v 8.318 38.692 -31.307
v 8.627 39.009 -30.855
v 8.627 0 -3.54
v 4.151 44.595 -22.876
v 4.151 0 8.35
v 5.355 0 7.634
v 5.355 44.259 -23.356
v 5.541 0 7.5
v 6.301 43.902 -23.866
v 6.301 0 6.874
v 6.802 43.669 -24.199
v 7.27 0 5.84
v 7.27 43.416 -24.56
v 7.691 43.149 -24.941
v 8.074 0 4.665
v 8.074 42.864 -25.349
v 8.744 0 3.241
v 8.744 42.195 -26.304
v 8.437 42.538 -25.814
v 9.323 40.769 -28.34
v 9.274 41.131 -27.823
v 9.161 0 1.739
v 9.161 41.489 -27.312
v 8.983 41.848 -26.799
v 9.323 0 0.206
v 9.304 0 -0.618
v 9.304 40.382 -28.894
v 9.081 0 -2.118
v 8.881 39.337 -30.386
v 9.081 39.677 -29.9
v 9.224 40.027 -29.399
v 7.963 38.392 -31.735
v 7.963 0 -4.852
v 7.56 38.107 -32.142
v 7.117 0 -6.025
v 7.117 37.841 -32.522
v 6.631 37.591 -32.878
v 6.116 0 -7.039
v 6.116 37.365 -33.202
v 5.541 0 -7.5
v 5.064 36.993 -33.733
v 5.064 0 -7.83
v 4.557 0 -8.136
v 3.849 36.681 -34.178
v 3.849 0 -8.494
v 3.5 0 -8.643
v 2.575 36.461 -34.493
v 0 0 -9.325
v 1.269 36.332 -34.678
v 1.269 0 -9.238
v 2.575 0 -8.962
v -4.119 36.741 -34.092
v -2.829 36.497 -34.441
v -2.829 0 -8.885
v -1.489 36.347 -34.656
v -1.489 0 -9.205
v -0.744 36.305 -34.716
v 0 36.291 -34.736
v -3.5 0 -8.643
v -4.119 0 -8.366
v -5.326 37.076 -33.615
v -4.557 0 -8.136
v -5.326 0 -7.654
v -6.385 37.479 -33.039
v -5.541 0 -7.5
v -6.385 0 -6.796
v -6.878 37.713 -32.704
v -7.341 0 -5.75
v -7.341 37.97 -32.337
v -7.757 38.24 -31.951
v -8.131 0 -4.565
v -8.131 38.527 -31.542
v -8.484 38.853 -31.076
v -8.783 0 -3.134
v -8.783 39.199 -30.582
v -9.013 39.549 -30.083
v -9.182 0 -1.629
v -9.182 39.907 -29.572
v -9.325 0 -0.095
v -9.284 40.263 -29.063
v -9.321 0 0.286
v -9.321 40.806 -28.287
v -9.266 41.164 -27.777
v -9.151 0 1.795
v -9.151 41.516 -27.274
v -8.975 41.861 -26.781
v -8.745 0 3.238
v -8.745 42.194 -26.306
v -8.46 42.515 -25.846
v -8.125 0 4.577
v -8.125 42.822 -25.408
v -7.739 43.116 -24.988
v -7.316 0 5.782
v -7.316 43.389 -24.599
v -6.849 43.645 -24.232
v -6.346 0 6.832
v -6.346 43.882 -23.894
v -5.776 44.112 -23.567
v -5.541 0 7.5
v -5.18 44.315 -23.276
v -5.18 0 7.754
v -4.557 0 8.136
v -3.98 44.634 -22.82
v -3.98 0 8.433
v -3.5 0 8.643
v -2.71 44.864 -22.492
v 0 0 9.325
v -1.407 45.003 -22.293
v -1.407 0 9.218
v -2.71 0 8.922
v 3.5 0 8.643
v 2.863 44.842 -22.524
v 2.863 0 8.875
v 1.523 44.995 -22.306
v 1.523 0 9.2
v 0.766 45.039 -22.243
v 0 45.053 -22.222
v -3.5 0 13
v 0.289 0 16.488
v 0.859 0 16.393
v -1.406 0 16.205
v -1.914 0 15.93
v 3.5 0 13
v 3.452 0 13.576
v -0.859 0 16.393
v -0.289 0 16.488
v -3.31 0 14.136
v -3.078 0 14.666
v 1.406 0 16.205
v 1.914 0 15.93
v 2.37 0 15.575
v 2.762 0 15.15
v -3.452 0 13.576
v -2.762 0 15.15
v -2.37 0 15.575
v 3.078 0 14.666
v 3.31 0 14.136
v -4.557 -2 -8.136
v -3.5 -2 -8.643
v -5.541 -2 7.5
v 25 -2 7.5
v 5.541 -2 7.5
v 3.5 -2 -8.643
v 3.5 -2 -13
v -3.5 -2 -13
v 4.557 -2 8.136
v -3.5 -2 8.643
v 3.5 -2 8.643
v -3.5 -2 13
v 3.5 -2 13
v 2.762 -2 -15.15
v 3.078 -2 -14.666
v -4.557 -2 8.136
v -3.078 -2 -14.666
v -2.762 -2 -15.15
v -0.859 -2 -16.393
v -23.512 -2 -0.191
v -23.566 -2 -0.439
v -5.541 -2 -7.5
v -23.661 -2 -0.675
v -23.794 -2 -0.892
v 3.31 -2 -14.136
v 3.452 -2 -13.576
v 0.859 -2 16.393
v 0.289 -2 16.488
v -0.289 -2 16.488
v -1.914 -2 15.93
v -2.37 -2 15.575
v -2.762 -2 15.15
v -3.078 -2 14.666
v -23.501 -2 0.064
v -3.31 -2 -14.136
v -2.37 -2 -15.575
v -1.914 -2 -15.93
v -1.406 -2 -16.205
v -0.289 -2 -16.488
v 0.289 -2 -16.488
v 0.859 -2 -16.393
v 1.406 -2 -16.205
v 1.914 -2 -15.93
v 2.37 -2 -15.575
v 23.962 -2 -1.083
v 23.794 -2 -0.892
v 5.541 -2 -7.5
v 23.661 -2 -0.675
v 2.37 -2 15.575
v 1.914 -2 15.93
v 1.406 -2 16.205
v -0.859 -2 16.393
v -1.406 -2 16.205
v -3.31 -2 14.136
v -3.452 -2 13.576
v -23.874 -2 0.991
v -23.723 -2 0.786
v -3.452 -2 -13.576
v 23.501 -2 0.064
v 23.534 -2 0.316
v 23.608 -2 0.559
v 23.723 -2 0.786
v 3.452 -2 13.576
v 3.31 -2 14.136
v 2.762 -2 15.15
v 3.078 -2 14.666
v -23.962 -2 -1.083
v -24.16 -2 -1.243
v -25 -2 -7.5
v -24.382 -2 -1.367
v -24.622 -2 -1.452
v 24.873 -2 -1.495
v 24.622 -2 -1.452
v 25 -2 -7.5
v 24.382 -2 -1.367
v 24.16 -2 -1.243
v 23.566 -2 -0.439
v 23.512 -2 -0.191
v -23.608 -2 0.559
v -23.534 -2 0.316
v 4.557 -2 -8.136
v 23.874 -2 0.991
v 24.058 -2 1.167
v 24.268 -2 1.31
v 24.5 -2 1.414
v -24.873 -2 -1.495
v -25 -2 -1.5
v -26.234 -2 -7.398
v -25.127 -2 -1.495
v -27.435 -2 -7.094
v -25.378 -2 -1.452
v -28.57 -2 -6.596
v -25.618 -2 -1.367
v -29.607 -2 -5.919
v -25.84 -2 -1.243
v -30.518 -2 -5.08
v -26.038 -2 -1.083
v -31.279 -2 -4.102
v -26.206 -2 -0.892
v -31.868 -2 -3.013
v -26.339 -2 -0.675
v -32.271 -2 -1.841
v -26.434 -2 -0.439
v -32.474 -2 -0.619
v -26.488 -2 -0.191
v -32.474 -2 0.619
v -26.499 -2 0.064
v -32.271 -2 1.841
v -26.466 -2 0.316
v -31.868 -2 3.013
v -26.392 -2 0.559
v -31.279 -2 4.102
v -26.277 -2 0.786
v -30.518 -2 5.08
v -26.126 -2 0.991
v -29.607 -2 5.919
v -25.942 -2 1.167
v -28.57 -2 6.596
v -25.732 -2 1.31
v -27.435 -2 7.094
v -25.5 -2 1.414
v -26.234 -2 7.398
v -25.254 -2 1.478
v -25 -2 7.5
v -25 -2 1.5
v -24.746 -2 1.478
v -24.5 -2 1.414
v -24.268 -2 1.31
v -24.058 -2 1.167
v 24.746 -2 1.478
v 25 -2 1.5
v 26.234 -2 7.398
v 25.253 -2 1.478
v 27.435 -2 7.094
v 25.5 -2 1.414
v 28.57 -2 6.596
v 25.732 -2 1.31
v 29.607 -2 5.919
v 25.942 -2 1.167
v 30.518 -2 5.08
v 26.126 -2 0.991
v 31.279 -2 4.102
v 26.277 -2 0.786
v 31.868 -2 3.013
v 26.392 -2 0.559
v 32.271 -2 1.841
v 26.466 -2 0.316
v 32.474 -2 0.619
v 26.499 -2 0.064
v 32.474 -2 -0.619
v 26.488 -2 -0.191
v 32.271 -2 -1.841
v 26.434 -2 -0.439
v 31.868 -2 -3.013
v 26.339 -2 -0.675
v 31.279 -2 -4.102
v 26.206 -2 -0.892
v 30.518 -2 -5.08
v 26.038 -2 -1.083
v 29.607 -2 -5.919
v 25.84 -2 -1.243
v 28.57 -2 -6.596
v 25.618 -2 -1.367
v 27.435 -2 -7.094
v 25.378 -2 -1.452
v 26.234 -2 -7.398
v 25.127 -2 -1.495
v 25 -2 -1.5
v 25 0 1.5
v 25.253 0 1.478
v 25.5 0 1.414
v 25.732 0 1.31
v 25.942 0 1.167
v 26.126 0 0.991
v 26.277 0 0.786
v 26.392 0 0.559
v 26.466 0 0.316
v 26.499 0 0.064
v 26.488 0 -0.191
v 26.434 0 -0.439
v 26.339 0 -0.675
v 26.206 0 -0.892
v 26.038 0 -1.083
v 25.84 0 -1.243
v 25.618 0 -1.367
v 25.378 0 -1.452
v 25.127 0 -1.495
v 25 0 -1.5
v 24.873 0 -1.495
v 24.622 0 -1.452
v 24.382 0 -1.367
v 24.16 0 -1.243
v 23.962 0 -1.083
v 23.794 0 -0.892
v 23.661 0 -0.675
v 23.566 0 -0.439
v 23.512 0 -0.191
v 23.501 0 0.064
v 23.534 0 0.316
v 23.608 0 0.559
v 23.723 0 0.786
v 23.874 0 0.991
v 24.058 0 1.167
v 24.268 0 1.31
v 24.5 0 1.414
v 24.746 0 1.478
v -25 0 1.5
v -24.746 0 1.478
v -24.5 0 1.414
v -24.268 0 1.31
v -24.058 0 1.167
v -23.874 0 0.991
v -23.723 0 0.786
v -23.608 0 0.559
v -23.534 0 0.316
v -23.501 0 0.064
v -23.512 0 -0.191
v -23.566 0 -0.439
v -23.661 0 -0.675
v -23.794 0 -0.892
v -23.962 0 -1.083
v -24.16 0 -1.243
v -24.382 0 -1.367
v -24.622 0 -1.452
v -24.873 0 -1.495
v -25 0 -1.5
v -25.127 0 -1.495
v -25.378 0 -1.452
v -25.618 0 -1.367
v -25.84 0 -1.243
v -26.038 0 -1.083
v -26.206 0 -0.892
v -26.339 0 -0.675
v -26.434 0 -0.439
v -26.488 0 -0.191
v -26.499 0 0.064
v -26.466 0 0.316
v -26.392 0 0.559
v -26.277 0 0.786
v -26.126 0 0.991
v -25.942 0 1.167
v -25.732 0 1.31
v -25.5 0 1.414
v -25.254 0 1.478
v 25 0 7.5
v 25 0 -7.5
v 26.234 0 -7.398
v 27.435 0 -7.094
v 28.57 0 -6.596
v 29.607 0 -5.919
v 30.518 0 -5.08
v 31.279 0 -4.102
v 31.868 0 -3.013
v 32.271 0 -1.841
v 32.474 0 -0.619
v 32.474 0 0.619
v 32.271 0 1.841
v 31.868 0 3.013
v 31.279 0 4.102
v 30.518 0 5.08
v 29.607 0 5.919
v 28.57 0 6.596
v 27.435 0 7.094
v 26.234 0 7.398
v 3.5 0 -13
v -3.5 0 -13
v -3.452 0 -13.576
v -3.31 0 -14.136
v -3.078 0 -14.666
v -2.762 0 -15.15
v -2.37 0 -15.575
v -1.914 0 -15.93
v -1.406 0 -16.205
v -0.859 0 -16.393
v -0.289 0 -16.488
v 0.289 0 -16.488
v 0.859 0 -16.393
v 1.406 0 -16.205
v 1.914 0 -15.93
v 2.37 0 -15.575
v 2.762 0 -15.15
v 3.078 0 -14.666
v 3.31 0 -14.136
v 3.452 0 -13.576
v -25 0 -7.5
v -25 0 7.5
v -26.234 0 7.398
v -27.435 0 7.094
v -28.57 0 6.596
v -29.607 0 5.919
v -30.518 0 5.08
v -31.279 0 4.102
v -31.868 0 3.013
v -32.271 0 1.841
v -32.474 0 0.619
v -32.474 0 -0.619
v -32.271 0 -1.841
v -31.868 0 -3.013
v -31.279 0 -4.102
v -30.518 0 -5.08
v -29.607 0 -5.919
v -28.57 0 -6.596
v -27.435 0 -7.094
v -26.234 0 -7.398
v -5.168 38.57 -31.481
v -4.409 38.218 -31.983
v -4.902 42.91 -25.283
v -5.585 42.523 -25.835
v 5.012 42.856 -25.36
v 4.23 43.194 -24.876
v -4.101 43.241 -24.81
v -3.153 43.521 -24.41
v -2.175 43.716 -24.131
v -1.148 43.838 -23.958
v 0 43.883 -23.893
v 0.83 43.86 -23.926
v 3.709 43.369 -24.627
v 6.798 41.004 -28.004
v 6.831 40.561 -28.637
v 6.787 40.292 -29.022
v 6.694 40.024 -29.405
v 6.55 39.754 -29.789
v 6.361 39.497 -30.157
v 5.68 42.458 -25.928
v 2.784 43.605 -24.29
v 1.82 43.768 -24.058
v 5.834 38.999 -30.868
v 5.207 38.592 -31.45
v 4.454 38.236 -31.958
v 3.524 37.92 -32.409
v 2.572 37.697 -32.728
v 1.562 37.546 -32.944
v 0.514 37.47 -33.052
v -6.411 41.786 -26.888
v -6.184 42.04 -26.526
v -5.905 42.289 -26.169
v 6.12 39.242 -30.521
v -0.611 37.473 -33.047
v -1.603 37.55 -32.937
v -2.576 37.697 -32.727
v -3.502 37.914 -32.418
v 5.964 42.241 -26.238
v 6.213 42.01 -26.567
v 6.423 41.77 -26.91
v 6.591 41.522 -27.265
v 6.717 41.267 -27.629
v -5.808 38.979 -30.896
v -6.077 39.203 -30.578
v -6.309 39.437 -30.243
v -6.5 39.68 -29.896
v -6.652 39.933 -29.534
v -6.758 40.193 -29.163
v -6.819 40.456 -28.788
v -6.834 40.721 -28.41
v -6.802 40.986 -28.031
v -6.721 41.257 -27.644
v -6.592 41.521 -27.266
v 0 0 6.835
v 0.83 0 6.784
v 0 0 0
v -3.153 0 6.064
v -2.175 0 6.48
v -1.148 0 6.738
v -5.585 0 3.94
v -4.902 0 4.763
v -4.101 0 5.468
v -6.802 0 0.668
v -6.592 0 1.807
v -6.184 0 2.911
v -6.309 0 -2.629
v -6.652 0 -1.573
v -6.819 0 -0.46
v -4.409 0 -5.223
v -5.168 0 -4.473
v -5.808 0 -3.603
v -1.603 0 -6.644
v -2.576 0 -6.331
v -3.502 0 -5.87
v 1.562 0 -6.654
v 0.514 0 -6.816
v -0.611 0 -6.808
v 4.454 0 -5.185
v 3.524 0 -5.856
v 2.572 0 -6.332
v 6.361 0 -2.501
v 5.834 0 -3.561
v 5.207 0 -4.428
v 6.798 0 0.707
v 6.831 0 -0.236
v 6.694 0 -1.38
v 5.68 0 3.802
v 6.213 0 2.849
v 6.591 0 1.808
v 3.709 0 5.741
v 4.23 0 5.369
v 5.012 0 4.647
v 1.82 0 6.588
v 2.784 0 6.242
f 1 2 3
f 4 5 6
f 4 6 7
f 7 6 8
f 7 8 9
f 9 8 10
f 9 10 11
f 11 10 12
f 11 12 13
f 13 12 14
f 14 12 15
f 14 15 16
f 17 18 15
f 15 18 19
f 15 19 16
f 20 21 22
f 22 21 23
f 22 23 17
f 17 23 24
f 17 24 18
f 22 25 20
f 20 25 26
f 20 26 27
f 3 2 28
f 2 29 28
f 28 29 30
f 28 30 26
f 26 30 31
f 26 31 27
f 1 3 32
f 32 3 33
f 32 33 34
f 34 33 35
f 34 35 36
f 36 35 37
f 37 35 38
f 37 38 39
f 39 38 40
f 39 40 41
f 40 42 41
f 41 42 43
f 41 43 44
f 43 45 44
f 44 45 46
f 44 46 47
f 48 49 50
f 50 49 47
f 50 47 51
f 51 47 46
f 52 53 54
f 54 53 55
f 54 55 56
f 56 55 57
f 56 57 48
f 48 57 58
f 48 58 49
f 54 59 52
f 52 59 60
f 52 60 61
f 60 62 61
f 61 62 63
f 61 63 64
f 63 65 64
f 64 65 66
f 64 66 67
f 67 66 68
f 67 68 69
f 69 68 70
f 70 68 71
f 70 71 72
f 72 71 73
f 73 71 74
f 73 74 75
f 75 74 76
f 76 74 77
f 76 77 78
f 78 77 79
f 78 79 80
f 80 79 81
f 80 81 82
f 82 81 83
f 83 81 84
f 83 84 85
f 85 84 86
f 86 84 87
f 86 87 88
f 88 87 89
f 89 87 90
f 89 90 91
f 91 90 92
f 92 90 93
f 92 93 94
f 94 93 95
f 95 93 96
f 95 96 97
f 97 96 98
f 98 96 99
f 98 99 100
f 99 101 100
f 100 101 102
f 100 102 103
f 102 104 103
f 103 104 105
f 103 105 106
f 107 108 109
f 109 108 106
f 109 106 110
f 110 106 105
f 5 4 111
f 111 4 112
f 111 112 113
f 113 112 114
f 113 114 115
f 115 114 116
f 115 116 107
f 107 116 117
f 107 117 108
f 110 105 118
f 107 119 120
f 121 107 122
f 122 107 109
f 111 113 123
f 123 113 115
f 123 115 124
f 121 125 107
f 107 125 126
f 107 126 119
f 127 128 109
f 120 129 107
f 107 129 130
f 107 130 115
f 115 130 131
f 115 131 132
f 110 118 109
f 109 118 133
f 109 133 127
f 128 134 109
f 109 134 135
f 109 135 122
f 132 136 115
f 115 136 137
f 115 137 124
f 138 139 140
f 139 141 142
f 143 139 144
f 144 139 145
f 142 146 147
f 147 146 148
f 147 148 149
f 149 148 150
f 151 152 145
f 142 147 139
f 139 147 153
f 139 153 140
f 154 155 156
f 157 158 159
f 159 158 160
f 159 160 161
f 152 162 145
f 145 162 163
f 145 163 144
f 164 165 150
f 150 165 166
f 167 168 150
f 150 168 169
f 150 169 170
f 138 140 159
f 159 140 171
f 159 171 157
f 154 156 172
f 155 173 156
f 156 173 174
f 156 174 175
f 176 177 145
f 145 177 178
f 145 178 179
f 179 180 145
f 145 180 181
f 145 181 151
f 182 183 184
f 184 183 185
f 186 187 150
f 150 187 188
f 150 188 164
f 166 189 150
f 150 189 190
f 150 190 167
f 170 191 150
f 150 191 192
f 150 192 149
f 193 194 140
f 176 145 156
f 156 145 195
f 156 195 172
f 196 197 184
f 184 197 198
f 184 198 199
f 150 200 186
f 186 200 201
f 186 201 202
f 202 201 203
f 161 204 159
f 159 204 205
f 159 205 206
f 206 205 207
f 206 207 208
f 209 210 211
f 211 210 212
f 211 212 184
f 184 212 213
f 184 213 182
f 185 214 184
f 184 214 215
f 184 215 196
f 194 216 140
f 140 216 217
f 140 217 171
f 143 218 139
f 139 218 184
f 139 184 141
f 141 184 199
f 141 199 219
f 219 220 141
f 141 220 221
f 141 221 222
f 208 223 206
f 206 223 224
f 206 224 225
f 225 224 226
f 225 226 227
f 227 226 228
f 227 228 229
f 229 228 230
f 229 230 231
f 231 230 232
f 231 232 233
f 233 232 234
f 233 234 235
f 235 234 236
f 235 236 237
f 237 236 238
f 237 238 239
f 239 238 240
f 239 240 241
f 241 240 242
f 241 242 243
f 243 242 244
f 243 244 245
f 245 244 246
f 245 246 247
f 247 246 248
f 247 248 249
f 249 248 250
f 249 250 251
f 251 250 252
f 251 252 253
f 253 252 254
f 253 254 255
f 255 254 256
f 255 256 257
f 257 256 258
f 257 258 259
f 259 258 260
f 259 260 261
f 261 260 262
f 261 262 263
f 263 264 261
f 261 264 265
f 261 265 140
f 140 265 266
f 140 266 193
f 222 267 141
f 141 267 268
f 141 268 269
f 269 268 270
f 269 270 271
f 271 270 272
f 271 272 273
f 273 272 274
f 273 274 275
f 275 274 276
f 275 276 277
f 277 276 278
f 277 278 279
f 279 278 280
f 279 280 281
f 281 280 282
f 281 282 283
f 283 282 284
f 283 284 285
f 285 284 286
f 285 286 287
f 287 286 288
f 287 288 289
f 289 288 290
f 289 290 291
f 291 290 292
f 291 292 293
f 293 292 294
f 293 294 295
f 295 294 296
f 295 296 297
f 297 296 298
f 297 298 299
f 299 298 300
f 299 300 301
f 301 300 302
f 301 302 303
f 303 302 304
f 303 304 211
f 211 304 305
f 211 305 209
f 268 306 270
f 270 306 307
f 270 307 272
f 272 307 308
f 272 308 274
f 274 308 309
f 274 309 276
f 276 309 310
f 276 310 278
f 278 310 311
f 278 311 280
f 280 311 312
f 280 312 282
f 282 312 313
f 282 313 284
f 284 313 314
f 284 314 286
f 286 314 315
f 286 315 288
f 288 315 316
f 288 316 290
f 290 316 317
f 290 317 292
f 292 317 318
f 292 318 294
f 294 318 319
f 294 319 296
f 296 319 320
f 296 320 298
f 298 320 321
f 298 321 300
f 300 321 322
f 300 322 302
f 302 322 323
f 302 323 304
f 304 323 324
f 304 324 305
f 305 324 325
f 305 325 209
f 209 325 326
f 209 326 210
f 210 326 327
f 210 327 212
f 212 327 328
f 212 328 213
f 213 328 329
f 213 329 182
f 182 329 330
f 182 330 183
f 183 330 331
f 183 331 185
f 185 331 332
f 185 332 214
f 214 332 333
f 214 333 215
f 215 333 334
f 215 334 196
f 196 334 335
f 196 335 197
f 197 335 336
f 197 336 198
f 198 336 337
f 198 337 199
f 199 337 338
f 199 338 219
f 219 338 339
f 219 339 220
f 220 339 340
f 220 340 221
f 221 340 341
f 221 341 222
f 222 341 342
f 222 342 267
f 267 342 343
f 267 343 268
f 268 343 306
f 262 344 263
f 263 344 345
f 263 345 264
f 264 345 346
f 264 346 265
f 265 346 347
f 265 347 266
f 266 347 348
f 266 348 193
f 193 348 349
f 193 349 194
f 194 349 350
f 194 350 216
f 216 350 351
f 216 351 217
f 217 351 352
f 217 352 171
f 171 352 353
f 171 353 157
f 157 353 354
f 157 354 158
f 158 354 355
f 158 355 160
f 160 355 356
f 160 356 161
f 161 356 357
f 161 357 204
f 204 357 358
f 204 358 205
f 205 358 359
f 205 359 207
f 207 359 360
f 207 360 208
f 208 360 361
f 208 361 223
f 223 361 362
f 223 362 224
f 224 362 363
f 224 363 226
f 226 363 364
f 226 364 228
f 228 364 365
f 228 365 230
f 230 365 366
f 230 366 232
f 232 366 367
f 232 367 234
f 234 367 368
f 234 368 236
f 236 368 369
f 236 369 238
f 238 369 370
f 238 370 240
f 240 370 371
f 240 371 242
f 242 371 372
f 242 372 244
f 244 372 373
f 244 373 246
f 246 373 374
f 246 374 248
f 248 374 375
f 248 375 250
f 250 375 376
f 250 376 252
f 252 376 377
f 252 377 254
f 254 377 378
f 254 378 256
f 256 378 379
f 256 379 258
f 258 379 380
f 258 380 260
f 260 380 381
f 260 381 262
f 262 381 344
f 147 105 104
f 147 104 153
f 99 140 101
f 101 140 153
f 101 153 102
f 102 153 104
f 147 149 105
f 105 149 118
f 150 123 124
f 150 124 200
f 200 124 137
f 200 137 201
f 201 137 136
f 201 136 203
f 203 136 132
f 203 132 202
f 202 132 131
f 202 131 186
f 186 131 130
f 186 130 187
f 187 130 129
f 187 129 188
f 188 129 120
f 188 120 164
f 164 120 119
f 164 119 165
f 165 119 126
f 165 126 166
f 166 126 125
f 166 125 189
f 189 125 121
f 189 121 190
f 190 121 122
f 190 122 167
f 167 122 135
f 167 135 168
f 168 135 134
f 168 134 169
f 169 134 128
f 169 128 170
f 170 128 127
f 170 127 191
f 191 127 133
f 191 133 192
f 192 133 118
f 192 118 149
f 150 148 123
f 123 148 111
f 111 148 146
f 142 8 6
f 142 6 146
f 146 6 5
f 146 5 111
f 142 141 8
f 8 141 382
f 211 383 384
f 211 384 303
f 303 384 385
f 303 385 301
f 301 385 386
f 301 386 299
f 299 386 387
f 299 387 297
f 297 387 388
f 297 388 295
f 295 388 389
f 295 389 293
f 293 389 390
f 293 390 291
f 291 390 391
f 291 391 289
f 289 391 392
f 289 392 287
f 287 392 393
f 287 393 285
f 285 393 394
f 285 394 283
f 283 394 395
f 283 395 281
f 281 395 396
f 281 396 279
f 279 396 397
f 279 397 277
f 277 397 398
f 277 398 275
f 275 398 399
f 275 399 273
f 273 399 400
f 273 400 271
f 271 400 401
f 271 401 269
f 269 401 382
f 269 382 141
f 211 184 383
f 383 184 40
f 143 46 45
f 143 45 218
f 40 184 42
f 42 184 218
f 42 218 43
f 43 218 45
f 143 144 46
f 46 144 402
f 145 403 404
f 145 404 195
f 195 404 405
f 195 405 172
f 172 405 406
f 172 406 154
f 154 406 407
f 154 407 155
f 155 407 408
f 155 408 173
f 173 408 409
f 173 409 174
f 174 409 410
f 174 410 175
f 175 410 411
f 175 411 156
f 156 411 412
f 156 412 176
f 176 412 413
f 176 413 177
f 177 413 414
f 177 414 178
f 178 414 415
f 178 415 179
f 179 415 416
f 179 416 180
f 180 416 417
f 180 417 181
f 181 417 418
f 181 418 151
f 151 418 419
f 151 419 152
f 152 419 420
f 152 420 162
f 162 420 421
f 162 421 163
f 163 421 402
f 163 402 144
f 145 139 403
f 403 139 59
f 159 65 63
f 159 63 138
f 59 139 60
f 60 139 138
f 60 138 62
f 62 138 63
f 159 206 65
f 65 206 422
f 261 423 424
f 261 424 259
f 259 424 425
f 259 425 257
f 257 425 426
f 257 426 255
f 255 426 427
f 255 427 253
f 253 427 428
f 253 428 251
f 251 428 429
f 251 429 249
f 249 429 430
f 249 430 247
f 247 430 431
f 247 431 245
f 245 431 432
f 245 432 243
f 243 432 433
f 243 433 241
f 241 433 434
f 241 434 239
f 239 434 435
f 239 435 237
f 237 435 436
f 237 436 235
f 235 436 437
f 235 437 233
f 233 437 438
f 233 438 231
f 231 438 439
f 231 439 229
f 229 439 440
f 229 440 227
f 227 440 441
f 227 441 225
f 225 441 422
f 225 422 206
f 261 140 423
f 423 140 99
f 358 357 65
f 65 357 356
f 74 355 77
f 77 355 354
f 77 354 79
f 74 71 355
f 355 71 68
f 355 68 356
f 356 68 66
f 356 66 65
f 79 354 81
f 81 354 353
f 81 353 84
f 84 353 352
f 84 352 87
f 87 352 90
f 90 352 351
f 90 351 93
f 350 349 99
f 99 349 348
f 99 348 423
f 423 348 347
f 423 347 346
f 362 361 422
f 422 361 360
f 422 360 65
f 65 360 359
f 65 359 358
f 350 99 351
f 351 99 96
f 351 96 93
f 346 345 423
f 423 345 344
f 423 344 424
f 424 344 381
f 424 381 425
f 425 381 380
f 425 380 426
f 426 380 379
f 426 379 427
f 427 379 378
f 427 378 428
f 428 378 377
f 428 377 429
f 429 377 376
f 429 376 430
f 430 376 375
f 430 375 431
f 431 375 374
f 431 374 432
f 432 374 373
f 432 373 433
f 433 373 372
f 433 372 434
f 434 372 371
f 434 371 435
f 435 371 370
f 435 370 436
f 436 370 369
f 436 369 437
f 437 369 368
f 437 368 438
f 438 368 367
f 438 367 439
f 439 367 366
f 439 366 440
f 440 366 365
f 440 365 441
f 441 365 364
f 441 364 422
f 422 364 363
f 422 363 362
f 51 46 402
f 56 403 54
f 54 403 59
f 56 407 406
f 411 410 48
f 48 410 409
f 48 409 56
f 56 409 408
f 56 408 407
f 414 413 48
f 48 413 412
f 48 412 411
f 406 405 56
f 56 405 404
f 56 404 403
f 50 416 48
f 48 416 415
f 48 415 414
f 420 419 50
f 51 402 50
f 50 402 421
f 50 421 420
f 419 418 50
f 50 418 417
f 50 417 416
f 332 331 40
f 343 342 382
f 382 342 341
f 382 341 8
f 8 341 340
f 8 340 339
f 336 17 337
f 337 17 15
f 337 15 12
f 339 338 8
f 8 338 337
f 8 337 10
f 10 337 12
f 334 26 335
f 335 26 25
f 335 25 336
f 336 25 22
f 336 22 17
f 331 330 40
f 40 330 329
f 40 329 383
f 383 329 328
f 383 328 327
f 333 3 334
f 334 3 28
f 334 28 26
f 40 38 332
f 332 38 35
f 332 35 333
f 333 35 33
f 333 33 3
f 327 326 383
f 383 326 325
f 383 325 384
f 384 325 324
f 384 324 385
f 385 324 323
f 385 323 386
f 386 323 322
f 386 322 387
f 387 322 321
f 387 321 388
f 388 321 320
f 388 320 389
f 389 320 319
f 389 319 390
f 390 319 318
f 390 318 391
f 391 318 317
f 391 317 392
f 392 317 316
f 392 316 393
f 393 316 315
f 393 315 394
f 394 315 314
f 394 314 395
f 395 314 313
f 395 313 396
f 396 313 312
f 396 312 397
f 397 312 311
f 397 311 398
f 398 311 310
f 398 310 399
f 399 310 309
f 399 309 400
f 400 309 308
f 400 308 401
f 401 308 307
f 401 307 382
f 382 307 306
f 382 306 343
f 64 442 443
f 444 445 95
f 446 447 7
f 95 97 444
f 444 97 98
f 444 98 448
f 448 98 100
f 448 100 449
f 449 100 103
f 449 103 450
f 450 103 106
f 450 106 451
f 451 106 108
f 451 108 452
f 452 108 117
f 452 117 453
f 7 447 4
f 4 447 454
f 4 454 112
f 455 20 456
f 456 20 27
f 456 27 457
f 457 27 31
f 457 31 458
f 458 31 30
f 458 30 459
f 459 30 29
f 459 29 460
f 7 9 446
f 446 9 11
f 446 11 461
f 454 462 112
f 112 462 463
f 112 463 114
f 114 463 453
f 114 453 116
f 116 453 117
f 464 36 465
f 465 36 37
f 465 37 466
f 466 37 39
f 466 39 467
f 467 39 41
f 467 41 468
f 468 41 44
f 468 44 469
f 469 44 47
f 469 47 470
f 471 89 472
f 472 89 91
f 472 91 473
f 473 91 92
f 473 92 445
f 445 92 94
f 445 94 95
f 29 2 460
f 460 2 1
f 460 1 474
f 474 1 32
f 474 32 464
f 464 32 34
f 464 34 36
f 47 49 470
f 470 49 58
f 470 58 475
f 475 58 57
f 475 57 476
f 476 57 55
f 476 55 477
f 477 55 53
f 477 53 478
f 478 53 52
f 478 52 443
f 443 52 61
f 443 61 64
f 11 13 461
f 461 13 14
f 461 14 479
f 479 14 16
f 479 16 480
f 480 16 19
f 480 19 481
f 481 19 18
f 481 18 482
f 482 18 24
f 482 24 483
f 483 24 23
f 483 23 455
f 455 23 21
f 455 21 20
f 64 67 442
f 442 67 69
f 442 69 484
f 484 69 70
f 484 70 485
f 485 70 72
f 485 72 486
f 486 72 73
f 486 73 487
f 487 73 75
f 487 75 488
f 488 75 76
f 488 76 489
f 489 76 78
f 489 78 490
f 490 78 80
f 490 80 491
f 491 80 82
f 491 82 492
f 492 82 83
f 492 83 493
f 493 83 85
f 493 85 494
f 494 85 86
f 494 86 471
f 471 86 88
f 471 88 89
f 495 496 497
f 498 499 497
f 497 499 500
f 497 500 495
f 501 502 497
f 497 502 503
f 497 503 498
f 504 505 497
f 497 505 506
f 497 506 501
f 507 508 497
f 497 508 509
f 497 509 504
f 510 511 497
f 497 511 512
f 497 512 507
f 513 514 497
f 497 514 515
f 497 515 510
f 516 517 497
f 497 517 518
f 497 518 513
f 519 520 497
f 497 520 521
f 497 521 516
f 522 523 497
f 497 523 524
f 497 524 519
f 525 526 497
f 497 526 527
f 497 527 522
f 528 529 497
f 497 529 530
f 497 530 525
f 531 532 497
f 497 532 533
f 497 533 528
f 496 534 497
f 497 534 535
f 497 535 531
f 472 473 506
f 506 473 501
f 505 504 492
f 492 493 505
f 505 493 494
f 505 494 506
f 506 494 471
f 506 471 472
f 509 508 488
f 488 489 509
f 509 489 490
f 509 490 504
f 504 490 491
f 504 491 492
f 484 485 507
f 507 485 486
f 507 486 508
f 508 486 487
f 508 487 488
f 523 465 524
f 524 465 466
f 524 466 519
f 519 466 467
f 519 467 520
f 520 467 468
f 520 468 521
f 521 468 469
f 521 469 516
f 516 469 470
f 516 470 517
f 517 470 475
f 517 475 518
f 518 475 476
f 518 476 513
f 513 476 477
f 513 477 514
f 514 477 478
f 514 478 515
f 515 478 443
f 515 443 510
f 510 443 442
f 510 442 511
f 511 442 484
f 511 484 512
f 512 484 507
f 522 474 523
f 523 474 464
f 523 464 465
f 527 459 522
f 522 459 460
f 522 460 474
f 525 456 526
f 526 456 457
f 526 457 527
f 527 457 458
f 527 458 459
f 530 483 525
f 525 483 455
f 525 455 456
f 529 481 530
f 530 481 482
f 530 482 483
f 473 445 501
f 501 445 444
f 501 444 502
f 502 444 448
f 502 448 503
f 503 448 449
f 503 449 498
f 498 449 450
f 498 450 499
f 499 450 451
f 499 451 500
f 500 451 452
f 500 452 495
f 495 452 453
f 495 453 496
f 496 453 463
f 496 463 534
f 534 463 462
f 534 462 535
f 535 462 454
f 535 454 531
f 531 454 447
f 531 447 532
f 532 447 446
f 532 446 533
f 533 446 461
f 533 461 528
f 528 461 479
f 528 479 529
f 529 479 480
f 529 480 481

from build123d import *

# Parameters (mm, degrees)
CROQUIS1_R                 = 9.325
CROQUIS1_R_2               = 6.835
CROQUIS11_R                = 1.5
SALIENTE_EXTRUIR1_DEPTH    = 2
CORTAR_EXTRUIR2_DEPTH      = 69.96775808
CORTAR_EXTRUIR2_DEPTH_BACK = 69.96775808


with BuildPart() as part:
    # Barrer1: sweep along a path in Croquis6
    with BuildLine(Plane(origin=(0, 0, 0), x_dir=(0, 0, -1), z_dir=(1, 0, 0))) as barrer1_path:
        Line((9.345393917, 0), (40.892097916, 45.053362436))
    # Croquis1 → Barrer1 (sweep)
    with BuildSketch(Plane(origin=(0, 0, 0), x_dir=(1, 0, 0), z_dir=(0, 1, 0))):
        Circle(CROQUIS1_R)
        Circle(CROQUIS1_R_2, mode=Mode.SUBTRACT)
    sweep(path=barrer1_path.line)

    # Croquis11 → Saliente-Extruir1 (add)
    with BuildSketch(Plane.XZ):
        with BuildLine():
            Line((-25, 7.5), (-5.54126565, 7.5))
            ThreePointArc((-5.54126565, 7.5), (-4.556629397, 8.135892916), (-3.5, 8.643241579))
            Line((-3.5, 8.643241579), (-3.5, 13))
            ThreePointArc((-3.5, 13), (0, 16.5), (3.5, 13))
            Line((3.5, 13), (3.5, 8.643241579))
            ThreePointArc((3.5, 8.643241579), (4.556629397, 8.135892916), (5.54126565, 7.5))
            Line((5.54126565, 7.5), (25, 7.5))
            ThreePointArc((25, 7.5), (32.5, 0), (25, -7.5))
            Line((25, -7.5), (5.54126565, -7.5))
            ThreePointArc((5.54126565, -7.5), (4.556629397, -8.135892916), (3.5, -8.643241579))
            Line((3.5, -8.643241579), (3.5, -13))
            ThreePointArc((3.5, -13), (0, -16.5), (-3.5, -13))
            Line((-3.5, -13), (-3.5, -8.643241579))
            ThreePointArc((-3.5, -8.643241579), (-4.556629397, -8.135892916), (-5.54126565, -7.5))
            Line((-5.54126565, -7.5), (-25, -7.5))
            ThreePointArc((-25, -7.5), (-32.5, 0), (-25, 7.5))
        make_face()
        with Locations(Location((-25, 0, 0), (0, 0, 270))):
            Circle(CROQUIS11_R, mode=Mode.SUBTRACT)
        with Locations(Location((25, 0, 0), (0, 0, 270))):
            Circle(CROQUIS11_R, mode=Mode.SUBTRACT)
    extrude(amount=SALIENTE_EXTRUIR1_DEPTH)

    # Croquis13 → Cortar-Extruir2 (cut, two sides: drawn at the far end of the back side and taken through both)
    with BuildSketch(Plane(origin=(0, 0, 0), x_dir=(0, 0, -1), z_dir=(1, 0, 0)).offset(-CORTAR_EXTRUIR2_DEPTH_BACK)):
        Polygon((22.221703999, 45.053362436), (40.871703999, 31.994491848), (40.871703999, 45.053362436), align=None)
    extrude(amount=CORTAR_EXTRUIR2_DEPTH + CORTAR_EXTRUIR2_DEPTH_BACK, mode=Mode.SUBTRACT)


solid = part.part
